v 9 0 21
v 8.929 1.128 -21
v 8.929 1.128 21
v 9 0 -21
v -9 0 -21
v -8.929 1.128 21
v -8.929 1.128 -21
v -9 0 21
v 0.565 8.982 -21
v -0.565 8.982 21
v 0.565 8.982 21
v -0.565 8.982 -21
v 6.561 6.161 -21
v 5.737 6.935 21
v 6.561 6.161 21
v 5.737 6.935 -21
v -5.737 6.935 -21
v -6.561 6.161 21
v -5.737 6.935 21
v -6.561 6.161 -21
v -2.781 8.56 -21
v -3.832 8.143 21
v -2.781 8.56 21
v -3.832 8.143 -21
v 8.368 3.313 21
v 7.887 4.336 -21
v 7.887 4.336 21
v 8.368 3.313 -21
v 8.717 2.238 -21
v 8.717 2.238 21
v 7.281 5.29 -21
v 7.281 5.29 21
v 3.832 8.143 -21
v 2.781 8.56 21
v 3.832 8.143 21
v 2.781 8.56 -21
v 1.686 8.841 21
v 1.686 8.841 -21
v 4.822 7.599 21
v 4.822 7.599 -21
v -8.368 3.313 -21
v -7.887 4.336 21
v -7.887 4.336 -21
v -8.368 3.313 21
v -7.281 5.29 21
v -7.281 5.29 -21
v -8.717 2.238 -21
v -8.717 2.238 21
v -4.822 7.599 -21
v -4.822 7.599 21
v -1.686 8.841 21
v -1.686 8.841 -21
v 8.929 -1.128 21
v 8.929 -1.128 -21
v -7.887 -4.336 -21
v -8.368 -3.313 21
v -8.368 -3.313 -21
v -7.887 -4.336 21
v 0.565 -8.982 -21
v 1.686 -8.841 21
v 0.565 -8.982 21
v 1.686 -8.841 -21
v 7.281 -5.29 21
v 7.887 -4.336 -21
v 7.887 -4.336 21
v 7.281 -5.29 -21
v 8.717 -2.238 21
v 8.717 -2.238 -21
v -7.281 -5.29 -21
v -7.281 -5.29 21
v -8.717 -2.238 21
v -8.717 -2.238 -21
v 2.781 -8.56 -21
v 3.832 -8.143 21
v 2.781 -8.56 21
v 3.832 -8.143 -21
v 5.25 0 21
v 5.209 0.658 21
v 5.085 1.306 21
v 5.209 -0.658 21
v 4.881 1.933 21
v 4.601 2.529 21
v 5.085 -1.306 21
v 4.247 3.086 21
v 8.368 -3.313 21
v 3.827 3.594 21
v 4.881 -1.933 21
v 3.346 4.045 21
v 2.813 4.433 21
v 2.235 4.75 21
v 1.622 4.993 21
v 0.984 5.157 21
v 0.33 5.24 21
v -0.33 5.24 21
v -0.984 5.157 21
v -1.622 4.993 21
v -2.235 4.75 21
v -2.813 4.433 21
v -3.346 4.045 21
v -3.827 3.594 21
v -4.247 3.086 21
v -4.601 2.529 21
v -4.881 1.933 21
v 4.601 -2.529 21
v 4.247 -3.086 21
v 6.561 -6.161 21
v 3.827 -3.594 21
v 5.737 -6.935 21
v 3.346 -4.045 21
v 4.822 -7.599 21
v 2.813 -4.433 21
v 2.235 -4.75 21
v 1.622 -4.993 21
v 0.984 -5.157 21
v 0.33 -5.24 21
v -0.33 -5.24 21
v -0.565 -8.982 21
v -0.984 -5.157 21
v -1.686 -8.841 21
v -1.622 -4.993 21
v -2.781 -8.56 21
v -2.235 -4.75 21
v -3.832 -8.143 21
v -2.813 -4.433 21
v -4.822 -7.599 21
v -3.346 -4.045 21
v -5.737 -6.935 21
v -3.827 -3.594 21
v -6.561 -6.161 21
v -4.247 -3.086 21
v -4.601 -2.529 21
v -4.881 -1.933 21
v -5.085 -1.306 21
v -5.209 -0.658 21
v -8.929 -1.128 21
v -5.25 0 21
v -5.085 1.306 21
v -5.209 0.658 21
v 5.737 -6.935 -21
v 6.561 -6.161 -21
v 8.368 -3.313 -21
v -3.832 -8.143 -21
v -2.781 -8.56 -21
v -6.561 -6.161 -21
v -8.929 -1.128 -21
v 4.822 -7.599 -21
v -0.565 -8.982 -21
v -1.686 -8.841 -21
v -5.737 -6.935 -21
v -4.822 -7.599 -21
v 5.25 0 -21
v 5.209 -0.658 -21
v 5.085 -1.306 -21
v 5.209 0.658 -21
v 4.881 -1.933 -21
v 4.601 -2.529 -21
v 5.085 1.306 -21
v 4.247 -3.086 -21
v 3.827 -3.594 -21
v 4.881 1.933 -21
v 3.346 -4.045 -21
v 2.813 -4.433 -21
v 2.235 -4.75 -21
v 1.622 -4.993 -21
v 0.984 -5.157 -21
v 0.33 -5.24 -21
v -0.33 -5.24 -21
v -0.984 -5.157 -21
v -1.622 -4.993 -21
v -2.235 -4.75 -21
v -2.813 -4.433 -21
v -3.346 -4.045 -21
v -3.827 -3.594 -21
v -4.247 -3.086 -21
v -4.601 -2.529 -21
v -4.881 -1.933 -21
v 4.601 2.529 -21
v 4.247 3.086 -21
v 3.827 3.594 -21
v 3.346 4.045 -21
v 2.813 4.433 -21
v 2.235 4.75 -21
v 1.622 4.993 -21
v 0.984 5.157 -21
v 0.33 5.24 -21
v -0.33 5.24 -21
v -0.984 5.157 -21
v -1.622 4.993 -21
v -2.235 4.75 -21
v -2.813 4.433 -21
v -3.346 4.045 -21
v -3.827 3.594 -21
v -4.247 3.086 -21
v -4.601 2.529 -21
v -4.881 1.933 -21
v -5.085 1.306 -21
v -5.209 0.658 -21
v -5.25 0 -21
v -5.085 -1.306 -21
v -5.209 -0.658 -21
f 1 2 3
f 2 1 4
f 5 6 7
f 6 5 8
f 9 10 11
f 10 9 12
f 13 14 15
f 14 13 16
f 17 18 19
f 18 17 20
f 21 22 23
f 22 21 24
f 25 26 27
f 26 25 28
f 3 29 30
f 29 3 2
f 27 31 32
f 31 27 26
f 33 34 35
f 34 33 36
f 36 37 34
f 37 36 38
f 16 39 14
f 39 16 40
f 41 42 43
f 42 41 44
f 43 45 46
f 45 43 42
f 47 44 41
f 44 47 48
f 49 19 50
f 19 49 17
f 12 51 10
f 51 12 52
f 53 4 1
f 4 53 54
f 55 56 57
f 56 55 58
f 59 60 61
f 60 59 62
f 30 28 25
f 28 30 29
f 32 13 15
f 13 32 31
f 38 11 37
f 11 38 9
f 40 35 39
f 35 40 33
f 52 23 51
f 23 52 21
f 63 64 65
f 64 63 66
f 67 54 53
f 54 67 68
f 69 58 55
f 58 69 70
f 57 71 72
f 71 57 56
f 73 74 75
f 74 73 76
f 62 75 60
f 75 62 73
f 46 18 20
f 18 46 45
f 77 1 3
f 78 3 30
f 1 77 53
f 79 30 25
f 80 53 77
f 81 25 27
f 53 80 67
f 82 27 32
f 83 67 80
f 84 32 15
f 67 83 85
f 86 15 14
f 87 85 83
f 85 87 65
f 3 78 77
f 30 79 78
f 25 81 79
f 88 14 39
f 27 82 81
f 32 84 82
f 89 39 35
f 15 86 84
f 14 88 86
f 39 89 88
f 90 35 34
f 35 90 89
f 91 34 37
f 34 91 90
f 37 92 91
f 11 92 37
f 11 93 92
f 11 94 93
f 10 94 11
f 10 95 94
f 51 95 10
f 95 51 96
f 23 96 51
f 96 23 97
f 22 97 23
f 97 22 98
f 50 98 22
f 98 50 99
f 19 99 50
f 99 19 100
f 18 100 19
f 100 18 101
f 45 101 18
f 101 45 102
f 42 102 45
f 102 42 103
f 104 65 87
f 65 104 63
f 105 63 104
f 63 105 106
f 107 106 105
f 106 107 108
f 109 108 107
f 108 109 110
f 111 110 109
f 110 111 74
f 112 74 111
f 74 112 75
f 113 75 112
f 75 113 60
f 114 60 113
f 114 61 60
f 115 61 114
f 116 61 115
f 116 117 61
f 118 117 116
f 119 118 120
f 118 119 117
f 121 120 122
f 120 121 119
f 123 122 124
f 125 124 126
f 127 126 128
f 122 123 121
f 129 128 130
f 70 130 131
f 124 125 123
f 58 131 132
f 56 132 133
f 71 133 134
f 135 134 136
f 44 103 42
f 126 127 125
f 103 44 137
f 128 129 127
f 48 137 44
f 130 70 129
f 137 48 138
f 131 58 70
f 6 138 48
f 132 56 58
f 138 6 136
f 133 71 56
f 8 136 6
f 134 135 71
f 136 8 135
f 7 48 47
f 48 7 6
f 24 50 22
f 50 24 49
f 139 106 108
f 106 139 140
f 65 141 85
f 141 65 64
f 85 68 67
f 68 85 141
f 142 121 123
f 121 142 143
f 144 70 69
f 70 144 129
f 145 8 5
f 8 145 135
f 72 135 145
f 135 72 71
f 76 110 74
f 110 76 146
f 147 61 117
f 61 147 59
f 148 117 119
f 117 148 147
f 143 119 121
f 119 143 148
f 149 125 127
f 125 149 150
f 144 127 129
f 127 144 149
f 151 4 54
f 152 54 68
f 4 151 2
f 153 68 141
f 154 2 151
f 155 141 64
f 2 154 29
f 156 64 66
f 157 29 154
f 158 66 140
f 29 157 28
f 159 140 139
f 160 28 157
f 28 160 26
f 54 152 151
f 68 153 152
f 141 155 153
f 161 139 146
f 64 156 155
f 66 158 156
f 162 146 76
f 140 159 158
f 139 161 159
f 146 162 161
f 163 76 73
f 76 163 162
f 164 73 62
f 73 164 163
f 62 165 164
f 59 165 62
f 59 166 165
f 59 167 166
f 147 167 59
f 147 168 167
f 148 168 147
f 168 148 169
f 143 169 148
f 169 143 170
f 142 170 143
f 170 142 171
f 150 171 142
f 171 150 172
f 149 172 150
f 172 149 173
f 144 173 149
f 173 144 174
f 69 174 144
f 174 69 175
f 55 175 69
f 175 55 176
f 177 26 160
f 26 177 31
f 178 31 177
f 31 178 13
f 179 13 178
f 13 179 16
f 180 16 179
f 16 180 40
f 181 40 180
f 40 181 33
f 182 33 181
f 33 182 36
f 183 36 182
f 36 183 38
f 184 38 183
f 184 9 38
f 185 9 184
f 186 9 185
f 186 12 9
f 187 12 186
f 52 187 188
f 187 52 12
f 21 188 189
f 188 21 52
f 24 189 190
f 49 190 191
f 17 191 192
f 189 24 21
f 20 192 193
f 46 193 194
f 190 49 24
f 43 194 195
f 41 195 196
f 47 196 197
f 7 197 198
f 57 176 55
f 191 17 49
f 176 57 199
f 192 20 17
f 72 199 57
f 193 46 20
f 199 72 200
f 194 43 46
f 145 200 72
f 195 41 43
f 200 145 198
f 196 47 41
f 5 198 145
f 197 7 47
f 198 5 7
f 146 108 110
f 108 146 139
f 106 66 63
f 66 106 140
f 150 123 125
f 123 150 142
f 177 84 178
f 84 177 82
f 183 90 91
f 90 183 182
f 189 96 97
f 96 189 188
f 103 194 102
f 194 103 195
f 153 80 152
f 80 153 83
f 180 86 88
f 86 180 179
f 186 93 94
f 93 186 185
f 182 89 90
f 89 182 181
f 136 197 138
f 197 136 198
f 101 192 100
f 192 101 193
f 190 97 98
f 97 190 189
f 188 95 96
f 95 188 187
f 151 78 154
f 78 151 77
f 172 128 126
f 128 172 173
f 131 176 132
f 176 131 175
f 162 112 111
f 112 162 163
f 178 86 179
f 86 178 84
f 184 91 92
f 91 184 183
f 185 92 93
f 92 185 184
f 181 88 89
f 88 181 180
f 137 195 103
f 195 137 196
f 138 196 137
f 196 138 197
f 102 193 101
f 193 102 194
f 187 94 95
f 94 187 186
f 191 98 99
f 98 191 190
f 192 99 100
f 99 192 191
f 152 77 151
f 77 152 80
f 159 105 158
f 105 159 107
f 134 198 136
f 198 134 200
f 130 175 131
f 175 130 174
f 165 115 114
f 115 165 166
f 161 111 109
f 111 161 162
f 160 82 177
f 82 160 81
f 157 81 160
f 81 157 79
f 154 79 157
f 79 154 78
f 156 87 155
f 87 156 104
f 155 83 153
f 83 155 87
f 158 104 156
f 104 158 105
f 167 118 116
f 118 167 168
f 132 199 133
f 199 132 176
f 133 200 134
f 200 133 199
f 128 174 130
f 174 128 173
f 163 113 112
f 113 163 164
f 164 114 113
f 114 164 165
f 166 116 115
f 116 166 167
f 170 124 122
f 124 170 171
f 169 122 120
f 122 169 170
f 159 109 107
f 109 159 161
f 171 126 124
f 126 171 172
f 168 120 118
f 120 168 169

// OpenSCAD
$fn = 50;


difference() {
	union() {
		translate(v = [0, 0, -21.0000000000]) {
			cylinder(h = 42, r = 9.0000000000);
		}
	}
	union() {
		translate(v = [0, 0, -100.0000000000]) {
			cylinder(h = 200, r = 5.2500000000);
		}
	}
}
